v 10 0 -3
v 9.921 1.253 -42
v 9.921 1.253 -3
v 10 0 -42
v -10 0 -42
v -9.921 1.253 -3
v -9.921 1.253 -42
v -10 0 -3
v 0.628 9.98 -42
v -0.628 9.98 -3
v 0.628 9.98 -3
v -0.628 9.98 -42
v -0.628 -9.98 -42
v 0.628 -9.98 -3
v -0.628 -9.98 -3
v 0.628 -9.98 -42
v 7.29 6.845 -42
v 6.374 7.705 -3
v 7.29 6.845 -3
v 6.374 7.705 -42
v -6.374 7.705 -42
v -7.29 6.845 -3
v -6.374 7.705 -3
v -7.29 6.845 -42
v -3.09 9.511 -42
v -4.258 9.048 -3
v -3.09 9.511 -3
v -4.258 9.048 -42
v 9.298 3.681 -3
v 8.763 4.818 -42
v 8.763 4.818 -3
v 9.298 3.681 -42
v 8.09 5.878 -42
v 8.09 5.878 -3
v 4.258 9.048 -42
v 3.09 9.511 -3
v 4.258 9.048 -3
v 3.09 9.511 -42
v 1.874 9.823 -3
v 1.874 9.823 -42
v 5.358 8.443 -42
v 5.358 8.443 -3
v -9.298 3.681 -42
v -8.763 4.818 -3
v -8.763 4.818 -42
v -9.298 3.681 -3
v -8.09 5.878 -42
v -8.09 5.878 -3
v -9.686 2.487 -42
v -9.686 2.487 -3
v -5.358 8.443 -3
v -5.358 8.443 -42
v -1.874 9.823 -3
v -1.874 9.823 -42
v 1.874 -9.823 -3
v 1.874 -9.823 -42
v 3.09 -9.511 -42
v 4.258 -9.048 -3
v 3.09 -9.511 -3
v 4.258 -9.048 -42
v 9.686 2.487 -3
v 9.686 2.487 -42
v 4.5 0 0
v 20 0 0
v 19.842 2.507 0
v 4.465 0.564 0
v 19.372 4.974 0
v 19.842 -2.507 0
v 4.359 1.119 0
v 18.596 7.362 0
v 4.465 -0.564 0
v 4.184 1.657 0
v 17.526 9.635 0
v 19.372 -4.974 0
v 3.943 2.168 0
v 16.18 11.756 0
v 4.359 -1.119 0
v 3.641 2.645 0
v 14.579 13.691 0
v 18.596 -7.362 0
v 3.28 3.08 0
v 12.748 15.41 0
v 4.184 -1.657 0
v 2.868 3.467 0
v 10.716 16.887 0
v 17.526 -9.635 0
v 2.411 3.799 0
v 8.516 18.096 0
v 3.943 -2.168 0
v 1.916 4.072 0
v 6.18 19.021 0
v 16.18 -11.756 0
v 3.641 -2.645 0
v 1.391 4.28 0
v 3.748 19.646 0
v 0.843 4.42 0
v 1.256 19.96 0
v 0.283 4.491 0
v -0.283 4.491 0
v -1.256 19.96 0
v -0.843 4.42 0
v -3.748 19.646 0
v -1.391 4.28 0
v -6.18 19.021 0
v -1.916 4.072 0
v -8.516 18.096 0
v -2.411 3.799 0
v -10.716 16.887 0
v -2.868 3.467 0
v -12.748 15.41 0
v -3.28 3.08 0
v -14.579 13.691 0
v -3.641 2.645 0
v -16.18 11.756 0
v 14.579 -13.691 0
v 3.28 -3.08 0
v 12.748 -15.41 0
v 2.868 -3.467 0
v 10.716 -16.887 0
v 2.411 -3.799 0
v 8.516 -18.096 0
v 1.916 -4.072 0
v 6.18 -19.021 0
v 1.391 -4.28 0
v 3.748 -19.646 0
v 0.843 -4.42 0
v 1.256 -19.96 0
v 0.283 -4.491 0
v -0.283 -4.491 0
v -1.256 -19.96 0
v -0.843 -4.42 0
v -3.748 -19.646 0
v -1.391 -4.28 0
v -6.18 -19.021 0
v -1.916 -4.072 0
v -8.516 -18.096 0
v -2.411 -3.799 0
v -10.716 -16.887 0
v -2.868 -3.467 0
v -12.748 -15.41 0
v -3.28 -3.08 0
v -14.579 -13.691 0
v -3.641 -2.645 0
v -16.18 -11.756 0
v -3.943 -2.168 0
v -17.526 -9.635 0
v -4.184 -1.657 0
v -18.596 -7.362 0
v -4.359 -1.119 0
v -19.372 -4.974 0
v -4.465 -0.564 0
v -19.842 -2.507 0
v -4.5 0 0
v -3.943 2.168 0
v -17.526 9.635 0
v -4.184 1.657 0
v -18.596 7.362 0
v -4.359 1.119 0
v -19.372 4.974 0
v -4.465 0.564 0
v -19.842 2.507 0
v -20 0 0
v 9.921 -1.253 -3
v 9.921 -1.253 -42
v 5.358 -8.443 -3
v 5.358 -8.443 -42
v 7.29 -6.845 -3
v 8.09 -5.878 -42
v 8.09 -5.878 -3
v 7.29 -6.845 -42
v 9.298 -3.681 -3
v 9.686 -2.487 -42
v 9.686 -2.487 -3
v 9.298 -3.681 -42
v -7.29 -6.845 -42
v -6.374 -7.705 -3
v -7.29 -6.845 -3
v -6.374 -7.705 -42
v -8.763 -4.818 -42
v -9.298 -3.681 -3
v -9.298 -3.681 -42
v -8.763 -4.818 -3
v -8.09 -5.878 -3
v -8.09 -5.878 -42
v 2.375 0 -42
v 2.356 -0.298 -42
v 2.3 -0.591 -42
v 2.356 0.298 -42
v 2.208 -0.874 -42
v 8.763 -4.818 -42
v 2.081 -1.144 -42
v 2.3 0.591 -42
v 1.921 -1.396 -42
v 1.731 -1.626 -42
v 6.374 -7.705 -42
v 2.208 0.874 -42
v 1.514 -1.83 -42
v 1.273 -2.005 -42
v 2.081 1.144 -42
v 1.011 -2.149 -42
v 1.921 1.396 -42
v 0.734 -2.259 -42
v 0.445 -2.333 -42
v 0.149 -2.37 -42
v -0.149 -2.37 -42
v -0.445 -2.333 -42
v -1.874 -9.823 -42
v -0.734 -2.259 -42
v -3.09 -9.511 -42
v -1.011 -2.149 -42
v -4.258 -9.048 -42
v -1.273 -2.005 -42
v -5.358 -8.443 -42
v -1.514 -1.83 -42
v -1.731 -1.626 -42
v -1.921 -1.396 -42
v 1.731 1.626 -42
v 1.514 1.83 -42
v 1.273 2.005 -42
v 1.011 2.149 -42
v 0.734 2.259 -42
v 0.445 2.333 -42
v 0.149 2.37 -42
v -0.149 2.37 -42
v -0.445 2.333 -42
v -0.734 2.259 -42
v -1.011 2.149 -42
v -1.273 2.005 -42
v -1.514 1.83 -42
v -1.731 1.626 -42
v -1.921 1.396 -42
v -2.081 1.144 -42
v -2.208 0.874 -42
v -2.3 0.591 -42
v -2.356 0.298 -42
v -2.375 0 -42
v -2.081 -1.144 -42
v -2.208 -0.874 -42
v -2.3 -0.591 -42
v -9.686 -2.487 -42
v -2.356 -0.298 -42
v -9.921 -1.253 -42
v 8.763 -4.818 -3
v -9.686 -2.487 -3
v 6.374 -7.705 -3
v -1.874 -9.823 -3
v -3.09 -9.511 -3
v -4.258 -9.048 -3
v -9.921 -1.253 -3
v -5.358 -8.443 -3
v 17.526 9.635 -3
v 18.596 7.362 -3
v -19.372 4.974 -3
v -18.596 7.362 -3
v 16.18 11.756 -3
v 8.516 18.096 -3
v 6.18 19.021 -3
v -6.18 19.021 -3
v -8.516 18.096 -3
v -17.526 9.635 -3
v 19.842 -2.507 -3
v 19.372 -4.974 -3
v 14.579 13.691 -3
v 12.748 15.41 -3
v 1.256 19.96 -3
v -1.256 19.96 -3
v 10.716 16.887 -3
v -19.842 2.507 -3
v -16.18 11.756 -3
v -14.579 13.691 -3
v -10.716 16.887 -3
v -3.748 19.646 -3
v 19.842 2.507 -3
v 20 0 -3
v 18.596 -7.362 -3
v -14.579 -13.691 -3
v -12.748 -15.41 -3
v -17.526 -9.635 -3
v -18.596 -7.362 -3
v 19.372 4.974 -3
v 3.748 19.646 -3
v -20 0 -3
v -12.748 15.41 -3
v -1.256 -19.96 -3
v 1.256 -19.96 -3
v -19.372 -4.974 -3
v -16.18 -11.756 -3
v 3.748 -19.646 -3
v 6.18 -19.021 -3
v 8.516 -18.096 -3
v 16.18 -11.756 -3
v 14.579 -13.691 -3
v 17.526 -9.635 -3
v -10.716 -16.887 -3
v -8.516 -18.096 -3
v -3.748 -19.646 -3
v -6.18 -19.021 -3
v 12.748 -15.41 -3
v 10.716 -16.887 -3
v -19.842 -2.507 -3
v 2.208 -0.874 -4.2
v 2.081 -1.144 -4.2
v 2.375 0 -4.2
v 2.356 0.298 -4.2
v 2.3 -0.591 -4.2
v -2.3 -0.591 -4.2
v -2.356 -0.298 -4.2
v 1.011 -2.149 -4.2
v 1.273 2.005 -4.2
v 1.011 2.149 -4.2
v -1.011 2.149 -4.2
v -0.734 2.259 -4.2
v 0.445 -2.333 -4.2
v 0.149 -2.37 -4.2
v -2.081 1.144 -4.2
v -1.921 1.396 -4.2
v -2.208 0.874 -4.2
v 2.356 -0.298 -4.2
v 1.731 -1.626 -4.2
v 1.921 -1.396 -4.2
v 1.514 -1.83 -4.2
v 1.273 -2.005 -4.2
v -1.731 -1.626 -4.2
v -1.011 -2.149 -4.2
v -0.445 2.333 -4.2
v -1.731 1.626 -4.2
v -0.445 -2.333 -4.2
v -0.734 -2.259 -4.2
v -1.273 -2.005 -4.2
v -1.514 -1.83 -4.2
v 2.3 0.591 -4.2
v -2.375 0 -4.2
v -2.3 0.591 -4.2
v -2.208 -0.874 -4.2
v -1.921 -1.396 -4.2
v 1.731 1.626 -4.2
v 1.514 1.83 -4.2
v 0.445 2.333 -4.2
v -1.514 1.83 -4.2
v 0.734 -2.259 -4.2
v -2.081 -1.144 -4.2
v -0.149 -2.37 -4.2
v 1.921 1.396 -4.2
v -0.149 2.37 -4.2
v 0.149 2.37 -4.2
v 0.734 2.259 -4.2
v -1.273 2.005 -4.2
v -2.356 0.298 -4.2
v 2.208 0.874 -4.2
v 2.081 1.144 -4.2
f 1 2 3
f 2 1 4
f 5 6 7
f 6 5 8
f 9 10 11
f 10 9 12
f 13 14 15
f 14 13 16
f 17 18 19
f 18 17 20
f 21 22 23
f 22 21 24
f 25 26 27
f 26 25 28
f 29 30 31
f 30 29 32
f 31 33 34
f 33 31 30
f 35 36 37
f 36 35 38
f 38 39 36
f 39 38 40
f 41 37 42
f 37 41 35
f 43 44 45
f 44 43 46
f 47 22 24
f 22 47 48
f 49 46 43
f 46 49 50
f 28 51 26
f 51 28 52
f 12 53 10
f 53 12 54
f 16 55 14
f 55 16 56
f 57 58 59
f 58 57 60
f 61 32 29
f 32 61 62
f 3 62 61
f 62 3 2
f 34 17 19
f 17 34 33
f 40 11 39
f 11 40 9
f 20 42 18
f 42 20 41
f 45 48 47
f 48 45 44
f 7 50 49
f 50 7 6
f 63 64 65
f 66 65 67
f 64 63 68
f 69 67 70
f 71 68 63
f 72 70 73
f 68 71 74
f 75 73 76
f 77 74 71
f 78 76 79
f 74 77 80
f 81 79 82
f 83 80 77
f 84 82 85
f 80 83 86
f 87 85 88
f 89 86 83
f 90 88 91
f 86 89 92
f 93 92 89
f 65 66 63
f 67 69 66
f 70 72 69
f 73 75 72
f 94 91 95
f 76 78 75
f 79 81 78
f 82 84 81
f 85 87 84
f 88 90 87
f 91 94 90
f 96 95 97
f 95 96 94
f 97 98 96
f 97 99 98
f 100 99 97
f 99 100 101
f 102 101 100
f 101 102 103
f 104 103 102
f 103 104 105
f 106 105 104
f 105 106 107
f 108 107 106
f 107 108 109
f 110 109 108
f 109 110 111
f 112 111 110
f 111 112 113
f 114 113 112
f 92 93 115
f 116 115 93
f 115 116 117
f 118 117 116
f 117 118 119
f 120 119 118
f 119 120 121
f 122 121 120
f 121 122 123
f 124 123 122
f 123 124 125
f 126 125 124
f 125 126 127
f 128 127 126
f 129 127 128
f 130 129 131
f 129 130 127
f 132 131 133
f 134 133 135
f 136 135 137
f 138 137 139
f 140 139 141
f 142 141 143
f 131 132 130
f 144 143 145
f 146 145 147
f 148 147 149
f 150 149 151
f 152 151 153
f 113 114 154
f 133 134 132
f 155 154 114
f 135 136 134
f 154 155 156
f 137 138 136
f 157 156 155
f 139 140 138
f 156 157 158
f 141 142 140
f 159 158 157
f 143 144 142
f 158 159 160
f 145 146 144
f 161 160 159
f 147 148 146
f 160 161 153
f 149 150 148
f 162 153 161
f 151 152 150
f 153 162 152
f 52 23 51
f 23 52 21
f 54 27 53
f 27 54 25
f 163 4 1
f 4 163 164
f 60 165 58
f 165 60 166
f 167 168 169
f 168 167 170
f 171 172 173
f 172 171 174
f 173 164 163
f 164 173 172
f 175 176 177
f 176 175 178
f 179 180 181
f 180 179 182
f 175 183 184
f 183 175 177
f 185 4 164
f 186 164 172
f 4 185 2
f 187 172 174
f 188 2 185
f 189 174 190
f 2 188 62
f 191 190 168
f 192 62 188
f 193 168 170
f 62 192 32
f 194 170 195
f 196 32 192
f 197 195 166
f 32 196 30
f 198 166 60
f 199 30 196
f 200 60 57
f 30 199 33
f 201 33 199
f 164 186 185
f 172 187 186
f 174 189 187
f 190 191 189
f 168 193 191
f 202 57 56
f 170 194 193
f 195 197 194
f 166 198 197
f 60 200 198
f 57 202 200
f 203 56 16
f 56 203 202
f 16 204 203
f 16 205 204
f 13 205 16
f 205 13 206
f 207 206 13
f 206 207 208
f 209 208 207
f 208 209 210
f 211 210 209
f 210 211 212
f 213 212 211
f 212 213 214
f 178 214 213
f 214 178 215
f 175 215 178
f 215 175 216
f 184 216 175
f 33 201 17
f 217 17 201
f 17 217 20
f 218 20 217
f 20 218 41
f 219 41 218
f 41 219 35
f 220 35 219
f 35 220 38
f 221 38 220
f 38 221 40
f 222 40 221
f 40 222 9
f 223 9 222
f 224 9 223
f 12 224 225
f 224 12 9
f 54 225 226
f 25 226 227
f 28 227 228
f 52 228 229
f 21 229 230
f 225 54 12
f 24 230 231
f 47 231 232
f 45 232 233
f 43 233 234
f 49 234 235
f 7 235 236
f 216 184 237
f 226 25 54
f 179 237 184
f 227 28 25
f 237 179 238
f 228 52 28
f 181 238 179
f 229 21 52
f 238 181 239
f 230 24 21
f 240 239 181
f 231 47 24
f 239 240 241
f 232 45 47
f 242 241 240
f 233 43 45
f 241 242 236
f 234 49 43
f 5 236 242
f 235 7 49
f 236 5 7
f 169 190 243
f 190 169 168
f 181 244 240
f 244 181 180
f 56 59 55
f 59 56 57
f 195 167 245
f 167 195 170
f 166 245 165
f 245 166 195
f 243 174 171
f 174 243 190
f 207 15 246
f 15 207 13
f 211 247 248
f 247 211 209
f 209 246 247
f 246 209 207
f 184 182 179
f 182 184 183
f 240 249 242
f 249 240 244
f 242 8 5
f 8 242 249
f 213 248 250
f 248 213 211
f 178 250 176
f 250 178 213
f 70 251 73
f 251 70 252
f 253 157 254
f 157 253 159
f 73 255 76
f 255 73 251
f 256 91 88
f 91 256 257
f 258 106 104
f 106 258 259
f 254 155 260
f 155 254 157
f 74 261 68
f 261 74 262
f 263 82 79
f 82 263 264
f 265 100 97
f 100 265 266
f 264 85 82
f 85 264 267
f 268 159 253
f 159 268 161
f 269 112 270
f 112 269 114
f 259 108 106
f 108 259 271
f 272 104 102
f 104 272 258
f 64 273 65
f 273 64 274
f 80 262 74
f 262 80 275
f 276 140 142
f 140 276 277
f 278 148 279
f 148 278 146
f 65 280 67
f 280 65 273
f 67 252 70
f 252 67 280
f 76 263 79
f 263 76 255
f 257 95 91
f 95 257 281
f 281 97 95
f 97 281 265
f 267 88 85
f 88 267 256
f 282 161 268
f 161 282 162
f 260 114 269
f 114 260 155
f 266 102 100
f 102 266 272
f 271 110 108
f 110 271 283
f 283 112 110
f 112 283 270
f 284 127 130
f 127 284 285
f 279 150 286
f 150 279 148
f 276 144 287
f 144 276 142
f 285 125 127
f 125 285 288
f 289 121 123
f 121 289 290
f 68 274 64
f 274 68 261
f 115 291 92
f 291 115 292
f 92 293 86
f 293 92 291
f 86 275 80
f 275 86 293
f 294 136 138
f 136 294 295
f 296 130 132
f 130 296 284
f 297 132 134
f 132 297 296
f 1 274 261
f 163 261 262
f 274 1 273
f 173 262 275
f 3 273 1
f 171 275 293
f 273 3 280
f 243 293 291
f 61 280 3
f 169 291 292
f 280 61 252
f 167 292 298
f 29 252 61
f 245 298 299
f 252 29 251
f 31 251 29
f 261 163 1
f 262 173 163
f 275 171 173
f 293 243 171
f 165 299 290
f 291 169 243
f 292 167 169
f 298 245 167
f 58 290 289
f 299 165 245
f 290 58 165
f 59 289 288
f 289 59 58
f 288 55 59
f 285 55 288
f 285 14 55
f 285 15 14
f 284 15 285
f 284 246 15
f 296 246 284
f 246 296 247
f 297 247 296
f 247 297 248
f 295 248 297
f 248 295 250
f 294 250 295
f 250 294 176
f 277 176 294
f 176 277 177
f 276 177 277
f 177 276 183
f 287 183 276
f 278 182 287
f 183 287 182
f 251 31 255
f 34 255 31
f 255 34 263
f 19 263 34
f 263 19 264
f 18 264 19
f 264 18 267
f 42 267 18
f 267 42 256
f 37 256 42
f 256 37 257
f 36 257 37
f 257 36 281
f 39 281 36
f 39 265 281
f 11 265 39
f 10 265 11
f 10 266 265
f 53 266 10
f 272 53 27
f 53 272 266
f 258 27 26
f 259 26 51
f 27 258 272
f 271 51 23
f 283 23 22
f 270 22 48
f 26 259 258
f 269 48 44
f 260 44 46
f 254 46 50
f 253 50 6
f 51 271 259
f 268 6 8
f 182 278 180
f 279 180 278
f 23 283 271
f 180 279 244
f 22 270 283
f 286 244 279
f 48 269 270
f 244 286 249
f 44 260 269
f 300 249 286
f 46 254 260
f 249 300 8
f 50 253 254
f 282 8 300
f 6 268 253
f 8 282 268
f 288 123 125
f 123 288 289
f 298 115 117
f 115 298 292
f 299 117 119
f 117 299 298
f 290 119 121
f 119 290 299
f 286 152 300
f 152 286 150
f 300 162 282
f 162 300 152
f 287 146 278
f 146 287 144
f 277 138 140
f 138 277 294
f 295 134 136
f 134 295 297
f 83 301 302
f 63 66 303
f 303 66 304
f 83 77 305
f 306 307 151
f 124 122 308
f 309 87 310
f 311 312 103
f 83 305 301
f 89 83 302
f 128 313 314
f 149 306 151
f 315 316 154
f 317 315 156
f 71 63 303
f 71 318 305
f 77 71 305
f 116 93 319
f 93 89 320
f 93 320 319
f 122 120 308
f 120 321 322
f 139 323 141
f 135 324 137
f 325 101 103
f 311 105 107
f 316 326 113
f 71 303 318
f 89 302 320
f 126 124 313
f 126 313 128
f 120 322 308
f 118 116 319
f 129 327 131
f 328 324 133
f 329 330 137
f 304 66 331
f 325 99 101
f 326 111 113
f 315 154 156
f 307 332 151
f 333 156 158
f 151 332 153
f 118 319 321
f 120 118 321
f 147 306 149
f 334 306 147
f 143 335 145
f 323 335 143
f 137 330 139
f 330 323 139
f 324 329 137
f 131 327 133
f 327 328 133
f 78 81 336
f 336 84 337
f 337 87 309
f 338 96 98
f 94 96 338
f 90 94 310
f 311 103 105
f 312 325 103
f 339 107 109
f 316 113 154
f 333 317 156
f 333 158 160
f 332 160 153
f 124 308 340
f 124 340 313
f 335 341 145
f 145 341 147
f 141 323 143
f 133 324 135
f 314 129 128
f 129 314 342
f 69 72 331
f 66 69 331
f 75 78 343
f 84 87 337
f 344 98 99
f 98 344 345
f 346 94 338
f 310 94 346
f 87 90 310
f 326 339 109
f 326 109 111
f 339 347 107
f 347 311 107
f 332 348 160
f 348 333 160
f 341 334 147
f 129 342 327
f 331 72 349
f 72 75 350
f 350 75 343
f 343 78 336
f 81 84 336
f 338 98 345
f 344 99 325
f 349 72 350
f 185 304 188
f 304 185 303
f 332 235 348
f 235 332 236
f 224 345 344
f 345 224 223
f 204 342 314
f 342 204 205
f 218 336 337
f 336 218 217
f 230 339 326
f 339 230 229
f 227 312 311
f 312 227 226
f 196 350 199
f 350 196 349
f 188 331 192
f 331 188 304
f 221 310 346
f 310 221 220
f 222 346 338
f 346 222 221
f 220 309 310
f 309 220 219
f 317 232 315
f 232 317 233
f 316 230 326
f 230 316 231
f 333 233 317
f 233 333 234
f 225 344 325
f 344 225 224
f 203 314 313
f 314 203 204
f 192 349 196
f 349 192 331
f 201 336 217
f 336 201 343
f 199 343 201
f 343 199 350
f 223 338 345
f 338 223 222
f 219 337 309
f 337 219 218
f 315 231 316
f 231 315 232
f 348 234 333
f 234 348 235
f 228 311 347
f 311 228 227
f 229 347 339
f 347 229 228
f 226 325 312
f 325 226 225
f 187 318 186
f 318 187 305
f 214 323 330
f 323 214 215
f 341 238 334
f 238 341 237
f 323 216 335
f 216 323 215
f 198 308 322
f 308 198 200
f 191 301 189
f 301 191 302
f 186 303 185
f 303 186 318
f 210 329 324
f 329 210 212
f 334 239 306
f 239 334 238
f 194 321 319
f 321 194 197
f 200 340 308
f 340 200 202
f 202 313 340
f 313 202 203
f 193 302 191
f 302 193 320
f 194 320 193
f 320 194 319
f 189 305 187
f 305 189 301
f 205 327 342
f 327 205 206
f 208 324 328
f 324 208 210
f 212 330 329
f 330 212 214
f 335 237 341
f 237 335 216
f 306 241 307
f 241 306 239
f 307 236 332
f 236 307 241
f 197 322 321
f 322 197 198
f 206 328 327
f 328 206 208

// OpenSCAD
$fn = 50;


difference() {
	union() {
		translate(v = [0, 0, -42.0000000000]) {
			cylinder(h = 42, r = 10.0000000000);
		}
		translate(v = [0, 0, -3.0000000000]) {
			cylinder(h = 3, r = 20.0000000000);
		}
	}
	union() {
		translate(v = [0, 0, 0]) {
			rotate(a = [0, 0, 0]) {
				difference() {
					union() {
						#translate(v = [0, 0, -42.0000000000]) {
							cylinder(h = 42, r = 2.2500000000);
						}
						#translate(v = [0, 0, -4.2000000000]) {
							cylinder(h = 4.2000000000, r = 10.0000000000, r1 = 2.3750000000, r2 = 4.5000000000);
						}
						#translate(v = [0, 0, -42.0000000000]) {
							cylinder(h = 42, r = 2.3750000000);
						}
						#translate(v = [0, 0, -42.0000000000]) {
							cylinder(h = 42, r = 2.2500000000);
						}
					}
					union();
				}
			}
		}
	}
}
